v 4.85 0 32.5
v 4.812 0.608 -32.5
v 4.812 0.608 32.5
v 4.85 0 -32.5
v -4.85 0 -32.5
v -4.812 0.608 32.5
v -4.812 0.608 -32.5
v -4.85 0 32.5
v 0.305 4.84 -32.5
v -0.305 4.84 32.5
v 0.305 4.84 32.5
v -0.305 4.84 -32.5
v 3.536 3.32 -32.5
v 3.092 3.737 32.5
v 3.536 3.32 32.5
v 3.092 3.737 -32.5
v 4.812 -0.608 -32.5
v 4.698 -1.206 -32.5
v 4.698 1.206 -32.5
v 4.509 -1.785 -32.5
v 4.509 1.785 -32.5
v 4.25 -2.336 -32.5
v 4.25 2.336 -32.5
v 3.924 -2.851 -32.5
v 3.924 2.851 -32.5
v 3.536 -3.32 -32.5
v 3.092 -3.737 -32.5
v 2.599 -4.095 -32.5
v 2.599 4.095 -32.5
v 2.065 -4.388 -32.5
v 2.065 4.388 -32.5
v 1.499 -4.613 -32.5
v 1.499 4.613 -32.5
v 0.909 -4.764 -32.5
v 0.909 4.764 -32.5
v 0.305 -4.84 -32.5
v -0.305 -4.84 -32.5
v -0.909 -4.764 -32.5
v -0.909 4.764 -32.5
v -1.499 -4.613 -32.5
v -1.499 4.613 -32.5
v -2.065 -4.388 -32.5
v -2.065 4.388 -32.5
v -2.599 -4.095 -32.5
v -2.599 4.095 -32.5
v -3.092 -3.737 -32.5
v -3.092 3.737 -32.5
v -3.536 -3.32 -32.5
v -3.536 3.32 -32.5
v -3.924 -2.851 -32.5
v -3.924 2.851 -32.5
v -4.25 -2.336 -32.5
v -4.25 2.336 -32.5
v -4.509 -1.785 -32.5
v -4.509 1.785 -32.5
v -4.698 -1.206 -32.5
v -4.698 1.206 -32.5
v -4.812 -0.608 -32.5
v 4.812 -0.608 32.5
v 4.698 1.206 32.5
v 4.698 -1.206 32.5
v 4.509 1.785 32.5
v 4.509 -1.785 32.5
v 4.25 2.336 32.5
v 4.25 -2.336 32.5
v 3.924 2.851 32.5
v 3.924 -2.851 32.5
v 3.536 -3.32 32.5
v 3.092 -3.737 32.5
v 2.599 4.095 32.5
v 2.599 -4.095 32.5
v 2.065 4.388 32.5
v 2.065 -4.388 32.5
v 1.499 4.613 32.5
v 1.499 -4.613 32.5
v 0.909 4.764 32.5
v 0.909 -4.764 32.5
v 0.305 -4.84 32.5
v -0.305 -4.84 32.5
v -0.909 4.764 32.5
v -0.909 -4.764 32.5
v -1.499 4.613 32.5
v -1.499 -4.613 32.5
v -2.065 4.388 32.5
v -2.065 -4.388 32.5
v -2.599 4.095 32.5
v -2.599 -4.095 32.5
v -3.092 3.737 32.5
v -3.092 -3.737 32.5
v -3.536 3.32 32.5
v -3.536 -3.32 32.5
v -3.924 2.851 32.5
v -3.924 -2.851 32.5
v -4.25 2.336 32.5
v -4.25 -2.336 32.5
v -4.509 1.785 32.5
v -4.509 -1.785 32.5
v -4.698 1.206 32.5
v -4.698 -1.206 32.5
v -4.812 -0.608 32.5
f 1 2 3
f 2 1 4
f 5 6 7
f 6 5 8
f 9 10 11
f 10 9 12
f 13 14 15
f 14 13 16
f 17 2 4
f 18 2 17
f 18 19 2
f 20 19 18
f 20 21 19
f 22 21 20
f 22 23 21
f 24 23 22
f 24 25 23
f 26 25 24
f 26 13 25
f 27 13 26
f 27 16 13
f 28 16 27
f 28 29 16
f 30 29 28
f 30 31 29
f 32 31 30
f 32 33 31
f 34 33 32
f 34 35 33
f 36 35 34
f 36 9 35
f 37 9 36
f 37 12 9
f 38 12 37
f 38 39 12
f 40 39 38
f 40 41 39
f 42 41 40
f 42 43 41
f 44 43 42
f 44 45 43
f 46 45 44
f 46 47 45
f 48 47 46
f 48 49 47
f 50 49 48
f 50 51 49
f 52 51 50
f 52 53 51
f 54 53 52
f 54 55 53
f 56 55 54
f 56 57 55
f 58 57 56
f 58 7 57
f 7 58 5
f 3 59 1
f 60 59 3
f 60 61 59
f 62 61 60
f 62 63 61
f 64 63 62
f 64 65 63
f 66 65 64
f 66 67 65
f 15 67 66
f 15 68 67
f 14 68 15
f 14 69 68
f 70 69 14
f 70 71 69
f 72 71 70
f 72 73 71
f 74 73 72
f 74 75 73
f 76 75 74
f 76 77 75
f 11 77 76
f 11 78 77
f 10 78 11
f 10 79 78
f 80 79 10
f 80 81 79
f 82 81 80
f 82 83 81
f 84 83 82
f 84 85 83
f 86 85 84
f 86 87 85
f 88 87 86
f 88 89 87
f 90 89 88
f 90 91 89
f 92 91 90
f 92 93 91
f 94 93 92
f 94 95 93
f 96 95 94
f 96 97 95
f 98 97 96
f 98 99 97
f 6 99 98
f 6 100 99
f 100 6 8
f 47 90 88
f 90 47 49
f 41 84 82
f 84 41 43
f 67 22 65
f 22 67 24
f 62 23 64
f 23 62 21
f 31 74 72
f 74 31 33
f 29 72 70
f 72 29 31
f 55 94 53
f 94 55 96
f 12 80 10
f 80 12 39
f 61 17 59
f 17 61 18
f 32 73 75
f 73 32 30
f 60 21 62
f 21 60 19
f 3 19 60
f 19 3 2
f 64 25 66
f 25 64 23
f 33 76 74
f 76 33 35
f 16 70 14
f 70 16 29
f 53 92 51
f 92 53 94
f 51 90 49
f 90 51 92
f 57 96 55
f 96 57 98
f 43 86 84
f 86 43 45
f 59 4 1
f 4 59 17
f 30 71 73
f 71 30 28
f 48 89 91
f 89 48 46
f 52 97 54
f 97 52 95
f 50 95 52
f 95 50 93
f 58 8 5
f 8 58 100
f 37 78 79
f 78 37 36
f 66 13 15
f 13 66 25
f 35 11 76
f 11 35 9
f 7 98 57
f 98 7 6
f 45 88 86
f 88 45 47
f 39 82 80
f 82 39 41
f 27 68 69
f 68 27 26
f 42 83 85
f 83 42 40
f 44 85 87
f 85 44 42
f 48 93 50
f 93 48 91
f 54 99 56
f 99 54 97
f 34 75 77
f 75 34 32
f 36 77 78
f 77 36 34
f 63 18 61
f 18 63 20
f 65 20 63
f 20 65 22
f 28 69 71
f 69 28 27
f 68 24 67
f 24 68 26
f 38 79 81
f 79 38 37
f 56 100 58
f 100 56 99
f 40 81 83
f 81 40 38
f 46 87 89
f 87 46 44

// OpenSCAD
$fn = 50;


difference() {
	union() {
		translate(v = [0, 0, -32.5000000000]) {
			cylinder(h = 65, r = 4.8500000000);
		}
	}
	union() {
		translate(v = [0, 0, -100.0000000000]) {
			cylinder(h = 200, r = 0);
		}
	}
}
